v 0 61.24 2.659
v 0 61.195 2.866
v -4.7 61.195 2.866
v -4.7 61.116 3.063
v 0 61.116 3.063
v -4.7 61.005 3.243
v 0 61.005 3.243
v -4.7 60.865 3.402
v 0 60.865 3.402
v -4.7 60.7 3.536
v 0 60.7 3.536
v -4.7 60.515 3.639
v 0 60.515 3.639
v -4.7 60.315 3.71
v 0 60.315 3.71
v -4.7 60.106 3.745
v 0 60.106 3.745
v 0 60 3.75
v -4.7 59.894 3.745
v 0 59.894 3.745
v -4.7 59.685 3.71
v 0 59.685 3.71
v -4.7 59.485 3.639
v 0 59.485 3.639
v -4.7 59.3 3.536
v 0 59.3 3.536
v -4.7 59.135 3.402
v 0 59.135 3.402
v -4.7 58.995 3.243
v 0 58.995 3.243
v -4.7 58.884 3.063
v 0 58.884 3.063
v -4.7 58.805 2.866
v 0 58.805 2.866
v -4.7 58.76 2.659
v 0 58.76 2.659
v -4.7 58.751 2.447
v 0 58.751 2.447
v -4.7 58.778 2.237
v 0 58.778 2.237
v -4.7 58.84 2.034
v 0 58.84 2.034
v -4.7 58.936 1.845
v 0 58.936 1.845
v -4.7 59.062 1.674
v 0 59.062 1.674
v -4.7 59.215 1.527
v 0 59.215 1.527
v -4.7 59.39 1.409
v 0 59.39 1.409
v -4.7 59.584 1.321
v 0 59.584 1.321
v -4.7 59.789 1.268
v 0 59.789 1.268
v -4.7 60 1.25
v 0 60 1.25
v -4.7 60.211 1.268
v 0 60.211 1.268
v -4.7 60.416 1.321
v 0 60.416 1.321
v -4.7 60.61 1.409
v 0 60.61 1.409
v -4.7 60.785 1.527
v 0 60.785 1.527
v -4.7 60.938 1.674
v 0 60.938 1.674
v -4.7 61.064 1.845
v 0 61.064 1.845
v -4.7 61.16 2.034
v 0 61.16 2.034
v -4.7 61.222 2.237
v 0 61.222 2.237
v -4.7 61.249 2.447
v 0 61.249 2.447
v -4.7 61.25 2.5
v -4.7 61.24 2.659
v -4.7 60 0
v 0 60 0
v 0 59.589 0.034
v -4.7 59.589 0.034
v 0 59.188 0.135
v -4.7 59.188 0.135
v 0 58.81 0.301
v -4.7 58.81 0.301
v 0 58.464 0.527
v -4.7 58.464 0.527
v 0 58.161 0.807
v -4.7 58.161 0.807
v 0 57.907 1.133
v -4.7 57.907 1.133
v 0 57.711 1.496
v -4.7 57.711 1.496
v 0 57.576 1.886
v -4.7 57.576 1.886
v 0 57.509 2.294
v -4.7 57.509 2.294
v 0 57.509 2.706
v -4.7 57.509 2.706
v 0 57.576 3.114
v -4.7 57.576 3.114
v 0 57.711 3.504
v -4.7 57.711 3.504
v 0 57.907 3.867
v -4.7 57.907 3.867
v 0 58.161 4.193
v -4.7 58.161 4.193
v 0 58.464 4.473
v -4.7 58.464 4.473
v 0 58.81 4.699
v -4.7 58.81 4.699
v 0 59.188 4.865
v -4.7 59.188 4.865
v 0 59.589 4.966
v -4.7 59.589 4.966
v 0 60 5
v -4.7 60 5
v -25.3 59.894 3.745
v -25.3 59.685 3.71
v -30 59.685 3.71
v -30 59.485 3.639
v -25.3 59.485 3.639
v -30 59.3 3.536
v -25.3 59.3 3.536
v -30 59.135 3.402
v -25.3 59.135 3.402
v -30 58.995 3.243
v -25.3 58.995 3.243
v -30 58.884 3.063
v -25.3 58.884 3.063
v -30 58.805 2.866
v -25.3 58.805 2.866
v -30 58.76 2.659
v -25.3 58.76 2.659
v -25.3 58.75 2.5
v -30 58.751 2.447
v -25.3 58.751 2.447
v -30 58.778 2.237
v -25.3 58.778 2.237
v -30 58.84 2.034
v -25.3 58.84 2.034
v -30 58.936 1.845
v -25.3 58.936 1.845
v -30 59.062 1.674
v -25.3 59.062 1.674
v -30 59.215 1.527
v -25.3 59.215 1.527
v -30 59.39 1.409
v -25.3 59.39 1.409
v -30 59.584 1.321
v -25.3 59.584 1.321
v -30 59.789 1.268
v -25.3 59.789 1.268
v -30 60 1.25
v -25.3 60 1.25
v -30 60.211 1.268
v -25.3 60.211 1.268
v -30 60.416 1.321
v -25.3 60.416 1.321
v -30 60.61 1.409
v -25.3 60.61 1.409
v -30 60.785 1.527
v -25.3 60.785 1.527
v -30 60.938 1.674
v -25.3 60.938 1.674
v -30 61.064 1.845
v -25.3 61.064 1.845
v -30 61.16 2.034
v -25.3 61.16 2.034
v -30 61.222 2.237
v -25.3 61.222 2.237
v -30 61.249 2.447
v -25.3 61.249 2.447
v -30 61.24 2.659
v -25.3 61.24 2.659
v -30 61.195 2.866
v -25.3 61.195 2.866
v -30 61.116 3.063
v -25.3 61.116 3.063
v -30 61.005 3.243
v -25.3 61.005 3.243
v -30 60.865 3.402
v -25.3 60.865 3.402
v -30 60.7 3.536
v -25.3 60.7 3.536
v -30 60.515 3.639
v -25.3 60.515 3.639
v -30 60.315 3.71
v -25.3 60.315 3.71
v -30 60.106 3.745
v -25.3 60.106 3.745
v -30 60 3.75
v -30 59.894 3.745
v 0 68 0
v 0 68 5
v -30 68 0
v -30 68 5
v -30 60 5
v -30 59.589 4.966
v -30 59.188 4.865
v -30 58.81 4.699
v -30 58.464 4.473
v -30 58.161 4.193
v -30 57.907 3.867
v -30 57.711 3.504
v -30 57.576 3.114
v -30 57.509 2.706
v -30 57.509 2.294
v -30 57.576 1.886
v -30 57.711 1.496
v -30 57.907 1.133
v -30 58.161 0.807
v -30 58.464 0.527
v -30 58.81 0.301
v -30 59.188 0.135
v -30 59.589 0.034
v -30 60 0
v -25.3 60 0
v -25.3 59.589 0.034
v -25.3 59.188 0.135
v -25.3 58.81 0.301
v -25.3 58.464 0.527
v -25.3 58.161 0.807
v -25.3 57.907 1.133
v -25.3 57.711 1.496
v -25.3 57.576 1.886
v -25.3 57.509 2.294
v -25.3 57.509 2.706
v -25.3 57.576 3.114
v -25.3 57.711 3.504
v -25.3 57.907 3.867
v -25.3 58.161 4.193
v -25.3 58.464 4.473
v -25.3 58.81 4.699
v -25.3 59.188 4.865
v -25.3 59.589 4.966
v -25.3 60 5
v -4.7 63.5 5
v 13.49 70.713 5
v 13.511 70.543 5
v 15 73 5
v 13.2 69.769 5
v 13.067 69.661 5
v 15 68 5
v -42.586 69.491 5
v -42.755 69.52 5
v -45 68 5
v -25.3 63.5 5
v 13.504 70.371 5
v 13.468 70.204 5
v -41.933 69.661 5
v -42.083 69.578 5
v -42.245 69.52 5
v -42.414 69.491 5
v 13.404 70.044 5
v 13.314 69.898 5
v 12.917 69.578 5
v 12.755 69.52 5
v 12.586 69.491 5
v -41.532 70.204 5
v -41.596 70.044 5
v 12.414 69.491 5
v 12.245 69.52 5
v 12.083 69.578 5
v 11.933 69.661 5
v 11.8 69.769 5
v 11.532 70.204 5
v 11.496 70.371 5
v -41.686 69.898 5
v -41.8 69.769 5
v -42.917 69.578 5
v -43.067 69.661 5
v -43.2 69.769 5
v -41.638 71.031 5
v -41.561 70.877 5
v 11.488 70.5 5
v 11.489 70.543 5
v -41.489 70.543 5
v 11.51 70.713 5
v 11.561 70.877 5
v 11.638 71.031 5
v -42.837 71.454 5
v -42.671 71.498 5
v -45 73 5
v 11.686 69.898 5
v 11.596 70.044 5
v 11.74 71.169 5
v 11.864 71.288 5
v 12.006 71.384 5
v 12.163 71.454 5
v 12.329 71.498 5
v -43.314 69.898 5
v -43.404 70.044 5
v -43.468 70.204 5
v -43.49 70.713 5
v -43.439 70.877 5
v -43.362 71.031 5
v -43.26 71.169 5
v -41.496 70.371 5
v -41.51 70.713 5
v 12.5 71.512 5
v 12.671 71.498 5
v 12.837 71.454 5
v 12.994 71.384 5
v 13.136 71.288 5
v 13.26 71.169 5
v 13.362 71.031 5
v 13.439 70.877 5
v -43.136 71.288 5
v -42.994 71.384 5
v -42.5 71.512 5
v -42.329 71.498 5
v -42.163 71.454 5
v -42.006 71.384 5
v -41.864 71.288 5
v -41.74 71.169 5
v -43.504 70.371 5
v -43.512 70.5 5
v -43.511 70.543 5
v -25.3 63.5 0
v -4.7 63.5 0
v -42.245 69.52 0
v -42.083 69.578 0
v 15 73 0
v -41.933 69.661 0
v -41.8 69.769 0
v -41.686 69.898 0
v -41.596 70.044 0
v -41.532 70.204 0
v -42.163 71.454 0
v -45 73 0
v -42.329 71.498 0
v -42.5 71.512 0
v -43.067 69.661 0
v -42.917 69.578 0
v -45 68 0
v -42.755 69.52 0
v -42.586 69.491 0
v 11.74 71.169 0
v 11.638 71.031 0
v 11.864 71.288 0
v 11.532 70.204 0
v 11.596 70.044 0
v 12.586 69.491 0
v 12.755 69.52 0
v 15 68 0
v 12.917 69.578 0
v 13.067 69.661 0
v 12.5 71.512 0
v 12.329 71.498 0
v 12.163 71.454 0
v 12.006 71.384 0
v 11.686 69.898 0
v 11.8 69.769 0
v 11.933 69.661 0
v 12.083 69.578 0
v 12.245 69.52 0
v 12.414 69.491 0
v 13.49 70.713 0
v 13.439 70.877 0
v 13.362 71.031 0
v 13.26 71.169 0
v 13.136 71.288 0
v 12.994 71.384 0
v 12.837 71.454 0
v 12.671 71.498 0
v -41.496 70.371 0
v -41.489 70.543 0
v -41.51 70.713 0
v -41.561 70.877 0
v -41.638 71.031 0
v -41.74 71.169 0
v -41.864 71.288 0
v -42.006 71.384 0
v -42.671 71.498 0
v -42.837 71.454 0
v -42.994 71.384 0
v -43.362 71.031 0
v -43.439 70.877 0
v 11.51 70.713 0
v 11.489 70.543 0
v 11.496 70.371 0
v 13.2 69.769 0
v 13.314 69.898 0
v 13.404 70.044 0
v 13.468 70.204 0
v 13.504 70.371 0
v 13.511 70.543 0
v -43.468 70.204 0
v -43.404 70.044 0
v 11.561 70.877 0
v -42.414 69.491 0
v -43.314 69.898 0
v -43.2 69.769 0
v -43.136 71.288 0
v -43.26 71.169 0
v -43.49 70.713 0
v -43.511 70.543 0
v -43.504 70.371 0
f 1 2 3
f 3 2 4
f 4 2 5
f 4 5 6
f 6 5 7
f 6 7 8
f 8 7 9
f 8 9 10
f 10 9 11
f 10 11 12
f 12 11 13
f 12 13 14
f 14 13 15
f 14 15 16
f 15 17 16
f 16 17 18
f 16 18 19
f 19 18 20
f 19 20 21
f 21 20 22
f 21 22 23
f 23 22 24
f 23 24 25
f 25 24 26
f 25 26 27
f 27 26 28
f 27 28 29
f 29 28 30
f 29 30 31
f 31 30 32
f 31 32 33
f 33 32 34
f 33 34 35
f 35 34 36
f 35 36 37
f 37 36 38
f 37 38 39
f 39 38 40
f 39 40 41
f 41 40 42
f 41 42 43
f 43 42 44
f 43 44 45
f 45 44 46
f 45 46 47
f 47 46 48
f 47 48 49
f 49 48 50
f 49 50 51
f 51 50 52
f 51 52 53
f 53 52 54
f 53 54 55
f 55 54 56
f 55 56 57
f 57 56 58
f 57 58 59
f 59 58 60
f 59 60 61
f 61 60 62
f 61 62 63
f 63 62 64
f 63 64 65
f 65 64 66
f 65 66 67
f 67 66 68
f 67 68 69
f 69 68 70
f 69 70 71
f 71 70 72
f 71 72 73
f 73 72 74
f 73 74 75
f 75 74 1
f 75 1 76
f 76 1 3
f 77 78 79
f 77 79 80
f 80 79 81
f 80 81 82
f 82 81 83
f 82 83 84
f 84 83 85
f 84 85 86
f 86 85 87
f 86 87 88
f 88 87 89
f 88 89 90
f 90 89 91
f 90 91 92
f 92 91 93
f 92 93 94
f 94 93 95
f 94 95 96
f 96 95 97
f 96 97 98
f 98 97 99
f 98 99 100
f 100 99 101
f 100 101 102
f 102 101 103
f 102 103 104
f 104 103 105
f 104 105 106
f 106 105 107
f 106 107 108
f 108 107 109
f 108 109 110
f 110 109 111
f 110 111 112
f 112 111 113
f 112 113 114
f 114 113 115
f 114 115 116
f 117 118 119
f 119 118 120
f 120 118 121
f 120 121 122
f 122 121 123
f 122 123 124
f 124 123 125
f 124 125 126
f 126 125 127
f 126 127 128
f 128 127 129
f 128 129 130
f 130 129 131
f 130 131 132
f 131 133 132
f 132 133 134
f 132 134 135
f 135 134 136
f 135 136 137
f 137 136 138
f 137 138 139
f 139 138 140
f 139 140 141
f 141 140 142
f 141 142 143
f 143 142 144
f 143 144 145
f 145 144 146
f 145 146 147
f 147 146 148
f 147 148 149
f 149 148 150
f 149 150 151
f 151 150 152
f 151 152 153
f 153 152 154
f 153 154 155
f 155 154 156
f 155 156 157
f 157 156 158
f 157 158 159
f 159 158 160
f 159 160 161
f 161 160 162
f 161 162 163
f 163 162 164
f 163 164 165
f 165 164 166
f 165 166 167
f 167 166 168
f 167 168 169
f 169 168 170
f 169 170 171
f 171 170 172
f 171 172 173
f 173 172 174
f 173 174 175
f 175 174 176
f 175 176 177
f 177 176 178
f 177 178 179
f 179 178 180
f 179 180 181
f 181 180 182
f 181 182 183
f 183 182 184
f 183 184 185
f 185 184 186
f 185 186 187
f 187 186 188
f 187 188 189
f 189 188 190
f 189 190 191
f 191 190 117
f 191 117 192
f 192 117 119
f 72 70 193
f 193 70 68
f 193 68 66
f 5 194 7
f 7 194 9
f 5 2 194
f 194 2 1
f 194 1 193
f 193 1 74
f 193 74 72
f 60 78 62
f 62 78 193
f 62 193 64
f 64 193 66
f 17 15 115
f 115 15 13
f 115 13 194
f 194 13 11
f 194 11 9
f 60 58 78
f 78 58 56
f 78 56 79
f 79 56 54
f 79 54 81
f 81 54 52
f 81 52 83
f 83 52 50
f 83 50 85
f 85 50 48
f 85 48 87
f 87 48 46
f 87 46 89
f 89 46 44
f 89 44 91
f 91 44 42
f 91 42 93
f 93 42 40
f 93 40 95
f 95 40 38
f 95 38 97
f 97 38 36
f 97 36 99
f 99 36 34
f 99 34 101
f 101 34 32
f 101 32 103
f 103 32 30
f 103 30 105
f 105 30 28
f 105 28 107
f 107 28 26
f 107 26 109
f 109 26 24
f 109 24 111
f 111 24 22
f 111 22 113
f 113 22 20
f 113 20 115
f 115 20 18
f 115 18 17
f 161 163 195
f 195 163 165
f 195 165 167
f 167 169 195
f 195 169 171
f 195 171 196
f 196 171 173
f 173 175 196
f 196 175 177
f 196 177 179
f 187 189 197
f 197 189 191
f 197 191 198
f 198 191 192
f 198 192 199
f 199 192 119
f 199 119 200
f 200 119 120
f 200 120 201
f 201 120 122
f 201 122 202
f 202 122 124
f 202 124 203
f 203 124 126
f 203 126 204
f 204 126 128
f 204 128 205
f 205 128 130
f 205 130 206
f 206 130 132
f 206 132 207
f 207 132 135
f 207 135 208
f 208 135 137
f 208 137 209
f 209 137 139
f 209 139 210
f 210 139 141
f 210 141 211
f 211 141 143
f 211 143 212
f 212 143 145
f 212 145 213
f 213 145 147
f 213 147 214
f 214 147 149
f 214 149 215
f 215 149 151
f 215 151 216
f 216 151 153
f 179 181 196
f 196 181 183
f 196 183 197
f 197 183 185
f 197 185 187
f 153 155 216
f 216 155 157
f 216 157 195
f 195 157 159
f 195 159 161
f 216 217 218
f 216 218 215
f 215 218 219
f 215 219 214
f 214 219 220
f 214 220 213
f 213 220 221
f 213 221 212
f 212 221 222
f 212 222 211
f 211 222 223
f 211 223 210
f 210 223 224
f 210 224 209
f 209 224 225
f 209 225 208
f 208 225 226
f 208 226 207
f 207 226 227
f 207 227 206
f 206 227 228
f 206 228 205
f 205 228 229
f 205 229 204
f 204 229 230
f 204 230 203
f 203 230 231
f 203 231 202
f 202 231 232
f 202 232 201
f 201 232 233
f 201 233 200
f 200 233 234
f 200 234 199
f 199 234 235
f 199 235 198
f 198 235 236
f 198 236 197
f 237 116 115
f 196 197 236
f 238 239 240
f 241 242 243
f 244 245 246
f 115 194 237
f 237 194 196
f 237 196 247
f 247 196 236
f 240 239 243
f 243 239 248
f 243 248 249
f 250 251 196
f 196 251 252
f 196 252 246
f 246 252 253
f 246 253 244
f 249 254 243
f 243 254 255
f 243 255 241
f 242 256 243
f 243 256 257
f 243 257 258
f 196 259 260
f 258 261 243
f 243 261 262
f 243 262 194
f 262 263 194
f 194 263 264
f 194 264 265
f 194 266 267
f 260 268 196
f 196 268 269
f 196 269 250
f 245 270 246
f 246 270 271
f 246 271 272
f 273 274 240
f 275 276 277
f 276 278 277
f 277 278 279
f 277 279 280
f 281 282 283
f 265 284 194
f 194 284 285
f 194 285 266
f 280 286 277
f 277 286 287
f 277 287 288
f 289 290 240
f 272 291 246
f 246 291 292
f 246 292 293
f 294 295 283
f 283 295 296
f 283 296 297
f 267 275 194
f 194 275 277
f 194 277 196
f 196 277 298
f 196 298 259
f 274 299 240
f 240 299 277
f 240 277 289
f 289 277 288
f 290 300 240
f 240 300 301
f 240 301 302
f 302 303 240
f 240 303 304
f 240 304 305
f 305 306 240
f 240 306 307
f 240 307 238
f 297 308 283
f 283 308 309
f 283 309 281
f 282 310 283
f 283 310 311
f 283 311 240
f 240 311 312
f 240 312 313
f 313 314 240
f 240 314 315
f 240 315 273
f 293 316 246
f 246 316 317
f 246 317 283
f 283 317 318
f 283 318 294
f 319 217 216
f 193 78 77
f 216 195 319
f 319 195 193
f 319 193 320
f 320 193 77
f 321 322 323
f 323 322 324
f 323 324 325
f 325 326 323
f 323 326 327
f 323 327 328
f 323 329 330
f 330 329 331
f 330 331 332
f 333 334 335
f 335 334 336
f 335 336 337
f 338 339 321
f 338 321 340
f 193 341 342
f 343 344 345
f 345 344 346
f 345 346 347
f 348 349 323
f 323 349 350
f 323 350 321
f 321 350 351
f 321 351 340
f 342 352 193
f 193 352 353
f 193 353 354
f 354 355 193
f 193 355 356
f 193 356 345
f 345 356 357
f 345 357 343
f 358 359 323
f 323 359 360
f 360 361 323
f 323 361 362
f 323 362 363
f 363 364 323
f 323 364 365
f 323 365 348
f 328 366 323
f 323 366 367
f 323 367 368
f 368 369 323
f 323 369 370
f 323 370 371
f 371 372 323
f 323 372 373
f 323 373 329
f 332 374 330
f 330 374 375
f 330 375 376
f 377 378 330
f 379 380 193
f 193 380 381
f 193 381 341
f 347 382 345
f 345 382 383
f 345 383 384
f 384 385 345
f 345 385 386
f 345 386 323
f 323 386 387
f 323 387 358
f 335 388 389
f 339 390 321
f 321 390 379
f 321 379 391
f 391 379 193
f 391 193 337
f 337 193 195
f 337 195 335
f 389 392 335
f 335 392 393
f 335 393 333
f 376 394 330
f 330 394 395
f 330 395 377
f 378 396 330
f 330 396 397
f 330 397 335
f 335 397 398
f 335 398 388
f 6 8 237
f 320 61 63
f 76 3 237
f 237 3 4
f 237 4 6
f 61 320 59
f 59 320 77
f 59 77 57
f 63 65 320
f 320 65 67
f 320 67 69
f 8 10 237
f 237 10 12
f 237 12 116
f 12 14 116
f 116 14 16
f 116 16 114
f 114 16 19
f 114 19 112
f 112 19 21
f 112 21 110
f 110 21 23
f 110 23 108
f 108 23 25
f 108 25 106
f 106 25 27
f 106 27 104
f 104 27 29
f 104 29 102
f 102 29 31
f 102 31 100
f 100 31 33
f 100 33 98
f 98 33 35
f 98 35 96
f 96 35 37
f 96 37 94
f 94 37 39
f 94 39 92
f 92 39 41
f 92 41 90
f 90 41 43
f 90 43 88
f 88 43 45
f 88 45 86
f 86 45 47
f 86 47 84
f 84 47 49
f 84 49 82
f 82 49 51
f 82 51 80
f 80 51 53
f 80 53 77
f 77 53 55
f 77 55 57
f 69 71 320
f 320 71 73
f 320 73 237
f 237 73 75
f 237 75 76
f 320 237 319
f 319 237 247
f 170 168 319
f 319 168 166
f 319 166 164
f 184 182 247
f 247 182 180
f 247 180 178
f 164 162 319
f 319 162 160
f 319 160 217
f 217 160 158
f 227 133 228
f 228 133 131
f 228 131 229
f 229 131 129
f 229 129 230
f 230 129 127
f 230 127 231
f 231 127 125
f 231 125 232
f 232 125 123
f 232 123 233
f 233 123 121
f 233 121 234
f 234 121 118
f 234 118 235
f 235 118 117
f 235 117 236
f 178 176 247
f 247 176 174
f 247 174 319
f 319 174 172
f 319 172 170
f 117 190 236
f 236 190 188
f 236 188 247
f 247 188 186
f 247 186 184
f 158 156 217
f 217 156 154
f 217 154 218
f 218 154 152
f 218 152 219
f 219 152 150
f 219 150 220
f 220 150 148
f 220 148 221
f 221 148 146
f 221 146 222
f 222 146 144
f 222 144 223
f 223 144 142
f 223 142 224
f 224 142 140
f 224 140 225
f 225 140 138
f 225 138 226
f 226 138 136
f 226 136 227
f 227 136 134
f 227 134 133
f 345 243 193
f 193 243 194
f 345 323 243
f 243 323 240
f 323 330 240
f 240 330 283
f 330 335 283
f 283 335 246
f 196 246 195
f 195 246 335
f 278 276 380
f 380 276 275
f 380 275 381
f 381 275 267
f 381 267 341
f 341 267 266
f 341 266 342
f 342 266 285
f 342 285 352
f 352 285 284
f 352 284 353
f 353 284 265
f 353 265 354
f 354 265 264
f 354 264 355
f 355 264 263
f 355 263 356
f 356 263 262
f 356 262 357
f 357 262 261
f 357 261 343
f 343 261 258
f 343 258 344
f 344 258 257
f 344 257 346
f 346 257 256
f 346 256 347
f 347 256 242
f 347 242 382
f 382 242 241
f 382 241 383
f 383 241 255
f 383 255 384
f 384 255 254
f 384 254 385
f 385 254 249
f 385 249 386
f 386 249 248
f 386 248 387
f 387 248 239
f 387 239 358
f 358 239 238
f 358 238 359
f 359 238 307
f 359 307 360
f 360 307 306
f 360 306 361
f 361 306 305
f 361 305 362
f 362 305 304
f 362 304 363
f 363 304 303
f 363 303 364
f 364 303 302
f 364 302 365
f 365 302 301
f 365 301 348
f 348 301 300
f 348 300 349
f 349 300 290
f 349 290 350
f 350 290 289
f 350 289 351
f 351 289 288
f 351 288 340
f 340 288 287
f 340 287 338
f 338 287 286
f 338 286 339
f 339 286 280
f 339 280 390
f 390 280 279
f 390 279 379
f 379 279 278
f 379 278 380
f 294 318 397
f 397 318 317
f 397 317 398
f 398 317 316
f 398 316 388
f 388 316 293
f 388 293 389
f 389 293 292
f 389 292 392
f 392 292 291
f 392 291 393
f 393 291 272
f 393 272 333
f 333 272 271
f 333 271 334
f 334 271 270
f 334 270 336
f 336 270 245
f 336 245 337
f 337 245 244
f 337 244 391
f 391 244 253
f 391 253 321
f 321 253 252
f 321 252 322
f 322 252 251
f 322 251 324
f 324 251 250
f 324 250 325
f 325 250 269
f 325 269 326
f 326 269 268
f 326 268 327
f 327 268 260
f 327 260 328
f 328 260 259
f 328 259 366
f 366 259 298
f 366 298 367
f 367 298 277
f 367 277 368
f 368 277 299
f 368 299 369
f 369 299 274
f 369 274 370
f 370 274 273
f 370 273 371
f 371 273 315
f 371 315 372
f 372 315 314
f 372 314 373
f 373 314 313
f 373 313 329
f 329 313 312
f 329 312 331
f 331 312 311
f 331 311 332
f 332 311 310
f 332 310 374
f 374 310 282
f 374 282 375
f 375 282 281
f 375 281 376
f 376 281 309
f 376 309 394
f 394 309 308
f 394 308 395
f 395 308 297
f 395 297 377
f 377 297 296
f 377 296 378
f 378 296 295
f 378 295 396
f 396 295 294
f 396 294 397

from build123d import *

# Parameters (mm, degrees)
SKETCH1_W           = 20
SKETCH1_H           = 60
BOSS_EXTRUDE1_DEPTH = 5
SKETCH2_R           = 2.5
SKETCH2_R_2         = 1.25
BOSS_EXTRUDE2_DEPTH = 20
SKETCH3_R           = 1.25
CUT_EXTRUDE1_DEPTH  = 29
SKETCH4_R           = 2.5
SKETCH4_R_2         = 1.25
BOSS_EXTRUDE3_DEPTH = 20
SKETCH5_R           = 1.25
CUT_EXTRUDE2_DEPTH  = 29
SKETCH6_R           = 1.25
BOSS_EXTRUDE4_DEPTH = 30
SKETCH7_W           = 20.6
SKETCH7_H           = 7
CUT_EXTRUDE3_DEPTH  = 30
SKETCH8_W           = 60.511546569
SKETCH8_H           = 78.563917263
CUT_EXTRUDE4_DEPTH  = 41
SKETCH10_W          = 60
SKETCH10_H          = 5
BOSS_EXTRUDE5_DEPTH = 5
SKETCH11_R          = 1.012314422
CUT_EXTRUDE5_DEPTH  = 41


with BuildPart() as part:
    # Sketch1 → Boss-Extrude1 (new body)
    with BuildSketch(Plane.XY):
        with Locations((10, 30)):
            Rectangle(SKETCH1_W, SKETCH1_H)
    extrude(amount=BOSS_EXTRUDE1_DEPTH)

    # Sketch2 → Boss-Extrude2 (add)
    with BuildSketch(Plane(origin=(20, 0, 0), x_dir=(0, 0, -1), z_dir=(1, 0, 0))):
        with Locations((-2.5, 60)):
            Circle(SKETCH2_R)
        with Locations((-2.5, 60)):
            Circle(SKETCH2_R_2, mode=Mode.SUBTRACT)
    extrude(amount=-BOSS_EXTRUDE2_DEPTH)

    # Sketch3 → Cut-Extrude1 (cut)
    with BuildSketch(Plane.ZY):
        with Locations(Location((2.5, 60, 0), (0, 0, 180))):
            Circle(SKETCH3_R)
    extrude(amount=-CUT_EXTRUDE1_DEPTH, mode=Mode.SUBTRACT)

    # Sketch4 → Boss-Extrude3 (add)
    with BuildSketch(Plane.ZY):
        with Locations((2.5, 0)):
            Circle(SKETCH4_R)
        with Locations((2.5, 0)):
            Circle(SKETCH4_R_2, mode=Mode.SUBTRACT)
    extrude(amount=-BOSS_EXTRUDE3_DEPTH)

    # Sketch5 → Cut-Extrude2 (cut)
    with BuildSketch(Plane(origin=(20, 0, 0), x_dir=(0, 0, -1), z_dir=(1, 0, 0))):
        with Locations(Location((-2.5, 0, 0), (0, 0, 180))):
            Circle(SKETCH5_R)
    extrude(amount=-CUT_EXTRUDE2_DEPTH, mode=Mode.SUBTRACT)

    # Sketch6 → Boss-Extrude4 (add)
    with BuildSketch(Plane.ZY):
        with BuildLine():
            Line((5, 60), (5, 70))
            Line((5, 70), (0, 70))
            Line((0, 70), (0, 60))
            ThreePointArc((0, 60), (2.5, 57.5), (5, 60))
        make_face()
        with Locations(Location((2.5, 60, 0), (0, 0, 180))):
            Circle(SKETCH6_R, mode=Mode.SUBTRACT)
    extrude(amount=BOSS_EXTRUDE4_DEPTH)

    # Sketch7 → Cut-Extrude3 (cut)
    with BuildSketch(Plane(origin=(0, 0, 0), x_dir=(-1, 0, 0), z_dir=(0, 0, -1))):
        with Locations((15, 60)):
            Rectangle(SKETCH7_W, SKETCH7_H)
    extrude(amount=-CUT_EXTRUDE3_DEPTH, mode=Mode.SUBTRACT)

    # Sketch8 → Cut-Extrude4 (cut)
    with BuildSketch(Plane.ZY):
        with Locations((2.066743104, 31.078249137)):
            Rectangle(SKETCH8_W, SKETCH8_H)
    extrude(amount=-CUT_EXTRUDE4_DEPTH, mode=Mode.SUBTRACT)

    # Sketch10 → Boss-Extrude5 (add)
    with BuildSketch(Plane(origin=(0, 0, 0), x_dir=(-1, 0, 0), z_dir=(0, 0, -1))):
        with Locations((15, 70.5)):
            Rectangle(SKETCH10_W, SKETCH10_H)
    extrude(amount=-BOSS_EXTRUDE5_DEPTH)

    # Sketch11 → Cut-Extrude5 (cut)
    with BuildSketch(Plane(origin=(0, 0, 0), x_dir=(-1, 0, 0), z_dir=(0, 0, -1))):
        with Locations(Location((-12.5, 70.5, 0), (0, 0, 90))):
            Circle(SKETCH11_R)
        with Locations(Location((42.5, 70.5, 0), (0, 0, 90))):
            Circle(SKETCH11_R)
    extrude(amount=-CUT_EXTRUDE5_DEPTH, mode=Mode.SUBTRACT)


solid = part.part
